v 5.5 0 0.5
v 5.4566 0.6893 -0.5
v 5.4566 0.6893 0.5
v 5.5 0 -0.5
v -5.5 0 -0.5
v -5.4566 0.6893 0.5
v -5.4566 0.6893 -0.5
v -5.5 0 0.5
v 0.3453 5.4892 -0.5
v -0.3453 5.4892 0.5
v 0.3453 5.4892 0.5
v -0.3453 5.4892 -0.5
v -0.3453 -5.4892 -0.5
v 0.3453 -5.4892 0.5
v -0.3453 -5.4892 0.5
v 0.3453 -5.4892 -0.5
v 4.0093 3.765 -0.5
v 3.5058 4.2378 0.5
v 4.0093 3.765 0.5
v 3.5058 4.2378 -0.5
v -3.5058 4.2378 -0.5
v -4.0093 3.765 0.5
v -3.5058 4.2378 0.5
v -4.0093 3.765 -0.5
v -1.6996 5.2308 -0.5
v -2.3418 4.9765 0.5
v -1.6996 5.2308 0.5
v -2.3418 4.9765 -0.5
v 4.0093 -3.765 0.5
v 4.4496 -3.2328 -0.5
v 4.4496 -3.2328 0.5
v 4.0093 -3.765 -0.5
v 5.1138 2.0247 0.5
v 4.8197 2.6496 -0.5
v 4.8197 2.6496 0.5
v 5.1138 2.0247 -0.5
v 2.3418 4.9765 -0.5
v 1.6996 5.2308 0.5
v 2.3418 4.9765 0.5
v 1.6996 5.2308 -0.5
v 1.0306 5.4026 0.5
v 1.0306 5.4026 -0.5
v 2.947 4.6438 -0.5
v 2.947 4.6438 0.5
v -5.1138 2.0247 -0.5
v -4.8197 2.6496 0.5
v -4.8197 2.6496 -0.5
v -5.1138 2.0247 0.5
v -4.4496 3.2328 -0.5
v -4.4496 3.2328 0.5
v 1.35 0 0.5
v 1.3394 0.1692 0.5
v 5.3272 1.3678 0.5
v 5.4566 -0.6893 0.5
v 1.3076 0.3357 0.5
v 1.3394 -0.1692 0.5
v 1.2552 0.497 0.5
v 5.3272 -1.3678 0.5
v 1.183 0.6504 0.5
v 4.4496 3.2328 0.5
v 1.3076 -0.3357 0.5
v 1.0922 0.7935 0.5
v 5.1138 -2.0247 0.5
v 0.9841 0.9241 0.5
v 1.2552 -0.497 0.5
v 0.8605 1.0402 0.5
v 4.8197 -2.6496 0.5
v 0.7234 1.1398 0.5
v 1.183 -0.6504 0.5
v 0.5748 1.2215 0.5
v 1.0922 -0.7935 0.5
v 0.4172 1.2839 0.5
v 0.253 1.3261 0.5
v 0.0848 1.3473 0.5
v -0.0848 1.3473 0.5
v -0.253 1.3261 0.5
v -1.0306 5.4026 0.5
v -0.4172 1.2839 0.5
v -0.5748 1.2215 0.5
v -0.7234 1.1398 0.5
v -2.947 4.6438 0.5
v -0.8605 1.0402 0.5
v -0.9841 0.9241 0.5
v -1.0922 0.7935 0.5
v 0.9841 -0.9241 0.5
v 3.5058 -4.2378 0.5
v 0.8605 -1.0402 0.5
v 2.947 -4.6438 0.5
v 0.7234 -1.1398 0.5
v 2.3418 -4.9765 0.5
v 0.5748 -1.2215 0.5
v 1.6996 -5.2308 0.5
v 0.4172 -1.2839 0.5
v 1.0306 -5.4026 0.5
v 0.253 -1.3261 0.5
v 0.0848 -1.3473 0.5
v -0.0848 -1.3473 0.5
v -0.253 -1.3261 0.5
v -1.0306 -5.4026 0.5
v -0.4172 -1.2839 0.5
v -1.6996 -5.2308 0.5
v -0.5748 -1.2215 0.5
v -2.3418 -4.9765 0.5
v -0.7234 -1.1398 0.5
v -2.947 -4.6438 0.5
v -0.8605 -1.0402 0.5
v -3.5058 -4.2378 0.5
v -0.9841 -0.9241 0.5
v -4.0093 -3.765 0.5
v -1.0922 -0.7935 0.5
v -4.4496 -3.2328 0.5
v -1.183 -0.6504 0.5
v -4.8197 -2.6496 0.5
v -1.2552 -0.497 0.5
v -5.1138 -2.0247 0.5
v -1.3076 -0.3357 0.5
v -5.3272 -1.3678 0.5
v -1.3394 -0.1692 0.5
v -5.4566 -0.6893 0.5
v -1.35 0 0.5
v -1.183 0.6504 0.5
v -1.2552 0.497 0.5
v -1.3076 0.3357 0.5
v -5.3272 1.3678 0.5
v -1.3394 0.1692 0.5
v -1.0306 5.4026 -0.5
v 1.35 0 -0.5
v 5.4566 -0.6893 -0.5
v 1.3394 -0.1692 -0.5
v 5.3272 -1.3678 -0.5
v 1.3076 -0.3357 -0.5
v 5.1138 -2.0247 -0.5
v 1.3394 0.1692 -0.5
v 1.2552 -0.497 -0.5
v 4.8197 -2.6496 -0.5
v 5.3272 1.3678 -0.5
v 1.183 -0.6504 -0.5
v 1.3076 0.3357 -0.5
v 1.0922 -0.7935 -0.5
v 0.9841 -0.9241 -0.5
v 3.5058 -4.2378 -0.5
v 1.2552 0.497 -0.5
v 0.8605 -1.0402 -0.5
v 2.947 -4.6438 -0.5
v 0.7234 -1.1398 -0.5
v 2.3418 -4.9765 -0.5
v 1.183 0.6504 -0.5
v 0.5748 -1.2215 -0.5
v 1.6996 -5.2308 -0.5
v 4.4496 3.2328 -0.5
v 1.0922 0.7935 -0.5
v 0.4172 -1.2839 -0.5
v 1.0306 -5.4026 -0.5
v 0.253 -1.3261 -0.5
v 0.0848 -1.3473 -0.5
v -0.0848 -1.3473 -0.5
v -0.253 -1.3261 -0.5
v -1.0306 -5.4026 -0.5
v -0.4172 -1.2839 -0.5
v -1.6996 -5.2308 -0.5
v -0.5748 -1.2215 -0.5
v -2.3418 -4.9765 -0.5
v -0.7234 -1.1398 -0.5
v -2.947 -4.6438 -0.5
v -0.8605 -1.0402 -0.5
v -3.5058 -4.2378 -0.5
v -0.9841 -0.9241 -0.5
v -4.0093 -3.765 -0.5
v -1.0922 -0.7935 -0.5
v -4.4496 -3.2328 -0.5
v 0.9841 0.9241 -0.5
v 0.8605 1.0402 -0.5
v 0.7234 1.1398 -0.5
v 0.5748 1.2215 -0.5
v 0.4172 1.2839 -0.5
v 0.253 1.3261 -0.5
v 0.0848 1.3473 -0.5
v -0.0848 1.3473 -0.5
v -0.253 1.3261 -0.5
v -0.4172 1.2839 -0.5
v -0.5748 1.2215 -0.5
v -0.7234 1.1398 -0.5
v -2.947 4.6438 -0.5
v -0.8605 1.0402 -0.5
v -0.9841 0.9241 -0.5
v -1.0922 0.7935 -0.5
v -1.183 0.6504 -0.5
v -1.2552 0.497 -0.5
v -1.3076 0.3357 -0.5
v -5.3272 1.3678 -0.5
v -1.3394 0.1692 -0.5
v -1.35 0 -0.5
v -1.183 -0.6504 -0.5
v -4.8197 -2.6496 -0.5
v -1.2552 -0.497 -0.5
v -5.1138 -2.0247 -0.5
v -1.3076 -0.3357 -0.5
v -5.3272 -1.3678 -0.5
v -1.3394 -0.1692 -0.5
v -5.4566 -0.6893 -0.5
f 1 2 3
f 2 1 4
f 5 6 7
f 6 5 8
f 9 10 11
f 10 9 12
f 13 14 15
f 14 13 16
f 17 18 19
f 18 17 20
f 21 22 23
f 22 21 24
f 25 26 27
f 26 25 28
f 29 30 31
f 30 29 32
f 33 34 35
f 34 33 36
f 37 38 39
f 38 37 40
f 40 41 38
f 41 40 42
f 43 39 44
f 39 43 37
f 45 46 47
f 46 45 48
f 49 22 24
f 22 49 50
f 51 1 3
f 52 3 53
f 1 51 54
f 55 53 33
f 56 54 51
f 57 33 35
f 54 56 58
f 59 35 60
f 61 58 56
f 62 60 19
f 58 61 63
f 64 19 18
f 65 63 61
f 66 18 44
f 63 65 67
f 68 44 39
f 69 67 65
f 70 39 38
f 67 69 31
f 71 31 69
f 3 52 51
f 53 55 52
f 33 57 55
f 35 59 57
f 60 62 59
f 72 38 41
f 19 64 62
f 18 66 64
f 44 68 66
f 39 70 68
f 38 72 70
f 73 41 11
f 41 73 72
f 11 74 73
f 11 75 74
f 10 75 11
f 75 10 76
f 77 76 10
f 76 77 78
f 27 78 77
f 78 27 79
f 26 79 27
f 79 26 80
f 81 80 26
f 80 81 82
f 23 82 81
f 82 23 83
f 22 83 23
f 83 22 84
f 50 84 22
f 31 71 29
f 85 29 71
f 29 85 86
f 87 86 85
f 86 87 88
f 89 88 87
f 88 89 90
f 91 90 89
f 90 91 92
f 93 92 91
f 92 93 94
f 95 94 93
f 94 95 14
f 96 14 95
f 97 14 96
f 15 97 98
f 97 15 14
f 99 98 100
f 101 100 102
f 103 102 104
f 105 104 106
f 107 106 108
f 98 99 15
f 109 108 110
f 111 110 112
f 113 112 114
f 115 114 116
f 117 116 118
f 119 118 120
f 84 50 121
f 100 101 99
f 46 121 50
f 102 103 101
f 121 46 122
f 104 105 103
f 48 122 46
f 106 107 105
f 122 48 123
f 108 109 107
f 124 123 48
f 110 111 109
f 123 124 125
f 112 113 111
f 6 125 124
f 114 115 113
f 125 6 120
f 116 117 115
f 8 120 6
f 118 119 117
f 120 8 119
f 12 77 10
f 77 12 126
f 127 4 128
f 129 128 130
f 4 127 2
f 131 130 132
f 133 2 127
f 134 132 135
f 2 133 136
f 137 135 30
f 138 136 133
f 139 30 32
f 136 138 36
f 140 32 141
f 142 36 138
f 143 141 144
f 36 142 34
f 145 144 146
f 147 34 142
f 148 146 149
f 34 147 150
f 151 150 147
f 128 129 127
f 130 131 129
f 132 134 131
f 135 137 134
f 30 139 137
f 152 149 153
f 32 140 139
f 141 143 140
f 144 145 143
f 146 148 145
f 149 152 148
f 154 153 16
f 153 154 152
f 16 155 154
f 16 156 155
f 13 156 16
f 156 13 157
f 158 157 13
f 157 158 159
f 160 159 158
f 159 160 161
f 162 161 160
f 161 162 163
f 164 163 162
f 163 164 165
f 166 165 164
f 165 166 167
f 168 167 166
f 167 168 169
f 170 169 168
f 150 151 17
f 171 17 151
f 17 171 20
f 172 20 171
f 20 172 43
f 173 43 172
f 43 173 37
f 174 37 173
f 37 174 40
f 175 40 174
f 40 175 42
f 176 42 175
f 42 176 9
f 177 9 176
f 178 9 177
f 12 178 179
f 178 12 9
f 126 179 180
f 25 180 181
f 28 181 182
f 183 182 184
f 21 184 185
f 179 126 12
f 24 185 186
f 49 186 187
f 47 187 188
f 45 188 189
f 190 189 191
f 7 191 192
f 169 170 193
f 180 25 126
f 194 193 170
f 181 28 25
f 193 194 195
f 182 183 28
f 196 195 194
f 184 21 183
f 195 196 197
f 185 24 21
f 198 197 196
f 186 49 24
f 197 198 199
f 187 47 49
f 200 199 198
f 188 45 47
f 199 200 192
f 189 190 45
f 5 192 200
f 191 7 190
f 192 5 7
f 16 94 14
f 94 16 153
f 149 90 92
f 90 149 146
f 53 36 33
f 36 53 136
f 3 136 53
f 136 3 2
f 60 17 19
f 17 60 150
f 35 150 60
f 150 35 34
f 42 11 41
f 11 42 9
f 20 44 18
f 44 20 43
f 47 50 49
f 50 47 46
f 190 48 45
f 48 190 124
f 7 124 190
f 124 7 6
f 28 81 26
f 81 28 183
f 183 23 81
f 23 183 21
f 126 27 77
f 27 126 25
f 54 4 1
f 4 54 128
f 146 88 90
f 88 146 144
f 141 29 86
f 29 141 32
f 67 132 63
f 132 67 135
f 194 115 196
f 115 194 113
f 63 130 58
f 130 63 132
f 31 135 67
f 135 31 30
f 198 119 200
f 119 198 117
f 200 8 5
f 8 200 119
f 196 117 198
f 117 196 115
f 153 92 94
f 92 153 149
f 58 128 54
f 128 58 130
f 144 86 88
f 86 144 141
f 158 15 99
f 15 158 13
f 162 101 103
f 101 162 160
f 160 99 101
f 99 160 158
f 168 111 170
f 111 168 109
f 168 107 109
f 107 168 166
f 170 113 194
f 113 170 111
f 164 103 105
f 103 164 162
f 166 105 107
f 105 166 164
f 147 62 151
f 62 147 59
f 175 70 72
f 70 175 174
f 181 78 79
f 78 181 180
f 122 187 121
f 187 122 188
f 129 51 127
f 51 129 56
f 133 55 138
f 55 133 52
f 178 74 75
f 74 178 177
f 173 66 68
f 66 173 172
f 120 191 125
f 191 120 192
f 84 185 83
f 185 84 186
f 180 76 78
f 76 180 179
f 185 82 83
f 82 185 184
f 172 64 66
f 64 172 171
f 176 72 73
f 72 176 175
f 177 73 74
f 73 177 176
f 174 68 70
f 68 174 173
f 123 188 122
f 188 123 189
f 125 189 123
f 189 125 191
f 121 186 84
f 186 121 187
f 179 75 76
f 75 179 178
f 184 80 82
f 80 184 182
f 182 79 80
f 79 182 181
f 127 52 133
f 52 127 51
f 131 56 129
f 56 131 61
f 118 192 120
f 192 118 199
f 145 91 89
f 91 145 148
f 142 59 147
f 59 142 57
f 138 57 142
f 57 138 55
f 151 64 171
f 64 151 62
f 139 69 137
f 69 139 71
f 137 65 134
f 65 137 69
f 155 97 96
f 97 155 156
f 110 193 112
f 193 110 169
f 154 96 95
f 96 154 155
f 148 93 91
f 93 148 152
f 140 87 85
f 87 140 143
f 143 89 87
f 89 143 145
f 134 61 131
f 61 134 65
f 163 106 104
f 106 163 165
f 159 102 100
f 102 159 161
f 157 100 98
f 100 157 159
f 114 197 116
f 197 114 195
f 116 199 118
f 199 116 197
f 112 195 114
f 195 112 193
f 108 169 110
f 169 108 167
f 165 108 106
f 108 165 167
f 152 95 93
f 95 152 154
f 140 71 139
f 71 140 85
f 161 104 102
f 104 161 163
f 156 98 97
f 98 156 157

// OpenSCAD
$fn = 50;


difference() {
	union() {
		translate(v = [0, 0, -0.5000000000]) {
			cylinder(h = 1, r = 5.5000000000);
		}
	}
	union() {
		translate(v = [0, 0, -100.0000000000]) {
			cylinder(h = 200, r = 1.3500000000);
		}
	}
}
